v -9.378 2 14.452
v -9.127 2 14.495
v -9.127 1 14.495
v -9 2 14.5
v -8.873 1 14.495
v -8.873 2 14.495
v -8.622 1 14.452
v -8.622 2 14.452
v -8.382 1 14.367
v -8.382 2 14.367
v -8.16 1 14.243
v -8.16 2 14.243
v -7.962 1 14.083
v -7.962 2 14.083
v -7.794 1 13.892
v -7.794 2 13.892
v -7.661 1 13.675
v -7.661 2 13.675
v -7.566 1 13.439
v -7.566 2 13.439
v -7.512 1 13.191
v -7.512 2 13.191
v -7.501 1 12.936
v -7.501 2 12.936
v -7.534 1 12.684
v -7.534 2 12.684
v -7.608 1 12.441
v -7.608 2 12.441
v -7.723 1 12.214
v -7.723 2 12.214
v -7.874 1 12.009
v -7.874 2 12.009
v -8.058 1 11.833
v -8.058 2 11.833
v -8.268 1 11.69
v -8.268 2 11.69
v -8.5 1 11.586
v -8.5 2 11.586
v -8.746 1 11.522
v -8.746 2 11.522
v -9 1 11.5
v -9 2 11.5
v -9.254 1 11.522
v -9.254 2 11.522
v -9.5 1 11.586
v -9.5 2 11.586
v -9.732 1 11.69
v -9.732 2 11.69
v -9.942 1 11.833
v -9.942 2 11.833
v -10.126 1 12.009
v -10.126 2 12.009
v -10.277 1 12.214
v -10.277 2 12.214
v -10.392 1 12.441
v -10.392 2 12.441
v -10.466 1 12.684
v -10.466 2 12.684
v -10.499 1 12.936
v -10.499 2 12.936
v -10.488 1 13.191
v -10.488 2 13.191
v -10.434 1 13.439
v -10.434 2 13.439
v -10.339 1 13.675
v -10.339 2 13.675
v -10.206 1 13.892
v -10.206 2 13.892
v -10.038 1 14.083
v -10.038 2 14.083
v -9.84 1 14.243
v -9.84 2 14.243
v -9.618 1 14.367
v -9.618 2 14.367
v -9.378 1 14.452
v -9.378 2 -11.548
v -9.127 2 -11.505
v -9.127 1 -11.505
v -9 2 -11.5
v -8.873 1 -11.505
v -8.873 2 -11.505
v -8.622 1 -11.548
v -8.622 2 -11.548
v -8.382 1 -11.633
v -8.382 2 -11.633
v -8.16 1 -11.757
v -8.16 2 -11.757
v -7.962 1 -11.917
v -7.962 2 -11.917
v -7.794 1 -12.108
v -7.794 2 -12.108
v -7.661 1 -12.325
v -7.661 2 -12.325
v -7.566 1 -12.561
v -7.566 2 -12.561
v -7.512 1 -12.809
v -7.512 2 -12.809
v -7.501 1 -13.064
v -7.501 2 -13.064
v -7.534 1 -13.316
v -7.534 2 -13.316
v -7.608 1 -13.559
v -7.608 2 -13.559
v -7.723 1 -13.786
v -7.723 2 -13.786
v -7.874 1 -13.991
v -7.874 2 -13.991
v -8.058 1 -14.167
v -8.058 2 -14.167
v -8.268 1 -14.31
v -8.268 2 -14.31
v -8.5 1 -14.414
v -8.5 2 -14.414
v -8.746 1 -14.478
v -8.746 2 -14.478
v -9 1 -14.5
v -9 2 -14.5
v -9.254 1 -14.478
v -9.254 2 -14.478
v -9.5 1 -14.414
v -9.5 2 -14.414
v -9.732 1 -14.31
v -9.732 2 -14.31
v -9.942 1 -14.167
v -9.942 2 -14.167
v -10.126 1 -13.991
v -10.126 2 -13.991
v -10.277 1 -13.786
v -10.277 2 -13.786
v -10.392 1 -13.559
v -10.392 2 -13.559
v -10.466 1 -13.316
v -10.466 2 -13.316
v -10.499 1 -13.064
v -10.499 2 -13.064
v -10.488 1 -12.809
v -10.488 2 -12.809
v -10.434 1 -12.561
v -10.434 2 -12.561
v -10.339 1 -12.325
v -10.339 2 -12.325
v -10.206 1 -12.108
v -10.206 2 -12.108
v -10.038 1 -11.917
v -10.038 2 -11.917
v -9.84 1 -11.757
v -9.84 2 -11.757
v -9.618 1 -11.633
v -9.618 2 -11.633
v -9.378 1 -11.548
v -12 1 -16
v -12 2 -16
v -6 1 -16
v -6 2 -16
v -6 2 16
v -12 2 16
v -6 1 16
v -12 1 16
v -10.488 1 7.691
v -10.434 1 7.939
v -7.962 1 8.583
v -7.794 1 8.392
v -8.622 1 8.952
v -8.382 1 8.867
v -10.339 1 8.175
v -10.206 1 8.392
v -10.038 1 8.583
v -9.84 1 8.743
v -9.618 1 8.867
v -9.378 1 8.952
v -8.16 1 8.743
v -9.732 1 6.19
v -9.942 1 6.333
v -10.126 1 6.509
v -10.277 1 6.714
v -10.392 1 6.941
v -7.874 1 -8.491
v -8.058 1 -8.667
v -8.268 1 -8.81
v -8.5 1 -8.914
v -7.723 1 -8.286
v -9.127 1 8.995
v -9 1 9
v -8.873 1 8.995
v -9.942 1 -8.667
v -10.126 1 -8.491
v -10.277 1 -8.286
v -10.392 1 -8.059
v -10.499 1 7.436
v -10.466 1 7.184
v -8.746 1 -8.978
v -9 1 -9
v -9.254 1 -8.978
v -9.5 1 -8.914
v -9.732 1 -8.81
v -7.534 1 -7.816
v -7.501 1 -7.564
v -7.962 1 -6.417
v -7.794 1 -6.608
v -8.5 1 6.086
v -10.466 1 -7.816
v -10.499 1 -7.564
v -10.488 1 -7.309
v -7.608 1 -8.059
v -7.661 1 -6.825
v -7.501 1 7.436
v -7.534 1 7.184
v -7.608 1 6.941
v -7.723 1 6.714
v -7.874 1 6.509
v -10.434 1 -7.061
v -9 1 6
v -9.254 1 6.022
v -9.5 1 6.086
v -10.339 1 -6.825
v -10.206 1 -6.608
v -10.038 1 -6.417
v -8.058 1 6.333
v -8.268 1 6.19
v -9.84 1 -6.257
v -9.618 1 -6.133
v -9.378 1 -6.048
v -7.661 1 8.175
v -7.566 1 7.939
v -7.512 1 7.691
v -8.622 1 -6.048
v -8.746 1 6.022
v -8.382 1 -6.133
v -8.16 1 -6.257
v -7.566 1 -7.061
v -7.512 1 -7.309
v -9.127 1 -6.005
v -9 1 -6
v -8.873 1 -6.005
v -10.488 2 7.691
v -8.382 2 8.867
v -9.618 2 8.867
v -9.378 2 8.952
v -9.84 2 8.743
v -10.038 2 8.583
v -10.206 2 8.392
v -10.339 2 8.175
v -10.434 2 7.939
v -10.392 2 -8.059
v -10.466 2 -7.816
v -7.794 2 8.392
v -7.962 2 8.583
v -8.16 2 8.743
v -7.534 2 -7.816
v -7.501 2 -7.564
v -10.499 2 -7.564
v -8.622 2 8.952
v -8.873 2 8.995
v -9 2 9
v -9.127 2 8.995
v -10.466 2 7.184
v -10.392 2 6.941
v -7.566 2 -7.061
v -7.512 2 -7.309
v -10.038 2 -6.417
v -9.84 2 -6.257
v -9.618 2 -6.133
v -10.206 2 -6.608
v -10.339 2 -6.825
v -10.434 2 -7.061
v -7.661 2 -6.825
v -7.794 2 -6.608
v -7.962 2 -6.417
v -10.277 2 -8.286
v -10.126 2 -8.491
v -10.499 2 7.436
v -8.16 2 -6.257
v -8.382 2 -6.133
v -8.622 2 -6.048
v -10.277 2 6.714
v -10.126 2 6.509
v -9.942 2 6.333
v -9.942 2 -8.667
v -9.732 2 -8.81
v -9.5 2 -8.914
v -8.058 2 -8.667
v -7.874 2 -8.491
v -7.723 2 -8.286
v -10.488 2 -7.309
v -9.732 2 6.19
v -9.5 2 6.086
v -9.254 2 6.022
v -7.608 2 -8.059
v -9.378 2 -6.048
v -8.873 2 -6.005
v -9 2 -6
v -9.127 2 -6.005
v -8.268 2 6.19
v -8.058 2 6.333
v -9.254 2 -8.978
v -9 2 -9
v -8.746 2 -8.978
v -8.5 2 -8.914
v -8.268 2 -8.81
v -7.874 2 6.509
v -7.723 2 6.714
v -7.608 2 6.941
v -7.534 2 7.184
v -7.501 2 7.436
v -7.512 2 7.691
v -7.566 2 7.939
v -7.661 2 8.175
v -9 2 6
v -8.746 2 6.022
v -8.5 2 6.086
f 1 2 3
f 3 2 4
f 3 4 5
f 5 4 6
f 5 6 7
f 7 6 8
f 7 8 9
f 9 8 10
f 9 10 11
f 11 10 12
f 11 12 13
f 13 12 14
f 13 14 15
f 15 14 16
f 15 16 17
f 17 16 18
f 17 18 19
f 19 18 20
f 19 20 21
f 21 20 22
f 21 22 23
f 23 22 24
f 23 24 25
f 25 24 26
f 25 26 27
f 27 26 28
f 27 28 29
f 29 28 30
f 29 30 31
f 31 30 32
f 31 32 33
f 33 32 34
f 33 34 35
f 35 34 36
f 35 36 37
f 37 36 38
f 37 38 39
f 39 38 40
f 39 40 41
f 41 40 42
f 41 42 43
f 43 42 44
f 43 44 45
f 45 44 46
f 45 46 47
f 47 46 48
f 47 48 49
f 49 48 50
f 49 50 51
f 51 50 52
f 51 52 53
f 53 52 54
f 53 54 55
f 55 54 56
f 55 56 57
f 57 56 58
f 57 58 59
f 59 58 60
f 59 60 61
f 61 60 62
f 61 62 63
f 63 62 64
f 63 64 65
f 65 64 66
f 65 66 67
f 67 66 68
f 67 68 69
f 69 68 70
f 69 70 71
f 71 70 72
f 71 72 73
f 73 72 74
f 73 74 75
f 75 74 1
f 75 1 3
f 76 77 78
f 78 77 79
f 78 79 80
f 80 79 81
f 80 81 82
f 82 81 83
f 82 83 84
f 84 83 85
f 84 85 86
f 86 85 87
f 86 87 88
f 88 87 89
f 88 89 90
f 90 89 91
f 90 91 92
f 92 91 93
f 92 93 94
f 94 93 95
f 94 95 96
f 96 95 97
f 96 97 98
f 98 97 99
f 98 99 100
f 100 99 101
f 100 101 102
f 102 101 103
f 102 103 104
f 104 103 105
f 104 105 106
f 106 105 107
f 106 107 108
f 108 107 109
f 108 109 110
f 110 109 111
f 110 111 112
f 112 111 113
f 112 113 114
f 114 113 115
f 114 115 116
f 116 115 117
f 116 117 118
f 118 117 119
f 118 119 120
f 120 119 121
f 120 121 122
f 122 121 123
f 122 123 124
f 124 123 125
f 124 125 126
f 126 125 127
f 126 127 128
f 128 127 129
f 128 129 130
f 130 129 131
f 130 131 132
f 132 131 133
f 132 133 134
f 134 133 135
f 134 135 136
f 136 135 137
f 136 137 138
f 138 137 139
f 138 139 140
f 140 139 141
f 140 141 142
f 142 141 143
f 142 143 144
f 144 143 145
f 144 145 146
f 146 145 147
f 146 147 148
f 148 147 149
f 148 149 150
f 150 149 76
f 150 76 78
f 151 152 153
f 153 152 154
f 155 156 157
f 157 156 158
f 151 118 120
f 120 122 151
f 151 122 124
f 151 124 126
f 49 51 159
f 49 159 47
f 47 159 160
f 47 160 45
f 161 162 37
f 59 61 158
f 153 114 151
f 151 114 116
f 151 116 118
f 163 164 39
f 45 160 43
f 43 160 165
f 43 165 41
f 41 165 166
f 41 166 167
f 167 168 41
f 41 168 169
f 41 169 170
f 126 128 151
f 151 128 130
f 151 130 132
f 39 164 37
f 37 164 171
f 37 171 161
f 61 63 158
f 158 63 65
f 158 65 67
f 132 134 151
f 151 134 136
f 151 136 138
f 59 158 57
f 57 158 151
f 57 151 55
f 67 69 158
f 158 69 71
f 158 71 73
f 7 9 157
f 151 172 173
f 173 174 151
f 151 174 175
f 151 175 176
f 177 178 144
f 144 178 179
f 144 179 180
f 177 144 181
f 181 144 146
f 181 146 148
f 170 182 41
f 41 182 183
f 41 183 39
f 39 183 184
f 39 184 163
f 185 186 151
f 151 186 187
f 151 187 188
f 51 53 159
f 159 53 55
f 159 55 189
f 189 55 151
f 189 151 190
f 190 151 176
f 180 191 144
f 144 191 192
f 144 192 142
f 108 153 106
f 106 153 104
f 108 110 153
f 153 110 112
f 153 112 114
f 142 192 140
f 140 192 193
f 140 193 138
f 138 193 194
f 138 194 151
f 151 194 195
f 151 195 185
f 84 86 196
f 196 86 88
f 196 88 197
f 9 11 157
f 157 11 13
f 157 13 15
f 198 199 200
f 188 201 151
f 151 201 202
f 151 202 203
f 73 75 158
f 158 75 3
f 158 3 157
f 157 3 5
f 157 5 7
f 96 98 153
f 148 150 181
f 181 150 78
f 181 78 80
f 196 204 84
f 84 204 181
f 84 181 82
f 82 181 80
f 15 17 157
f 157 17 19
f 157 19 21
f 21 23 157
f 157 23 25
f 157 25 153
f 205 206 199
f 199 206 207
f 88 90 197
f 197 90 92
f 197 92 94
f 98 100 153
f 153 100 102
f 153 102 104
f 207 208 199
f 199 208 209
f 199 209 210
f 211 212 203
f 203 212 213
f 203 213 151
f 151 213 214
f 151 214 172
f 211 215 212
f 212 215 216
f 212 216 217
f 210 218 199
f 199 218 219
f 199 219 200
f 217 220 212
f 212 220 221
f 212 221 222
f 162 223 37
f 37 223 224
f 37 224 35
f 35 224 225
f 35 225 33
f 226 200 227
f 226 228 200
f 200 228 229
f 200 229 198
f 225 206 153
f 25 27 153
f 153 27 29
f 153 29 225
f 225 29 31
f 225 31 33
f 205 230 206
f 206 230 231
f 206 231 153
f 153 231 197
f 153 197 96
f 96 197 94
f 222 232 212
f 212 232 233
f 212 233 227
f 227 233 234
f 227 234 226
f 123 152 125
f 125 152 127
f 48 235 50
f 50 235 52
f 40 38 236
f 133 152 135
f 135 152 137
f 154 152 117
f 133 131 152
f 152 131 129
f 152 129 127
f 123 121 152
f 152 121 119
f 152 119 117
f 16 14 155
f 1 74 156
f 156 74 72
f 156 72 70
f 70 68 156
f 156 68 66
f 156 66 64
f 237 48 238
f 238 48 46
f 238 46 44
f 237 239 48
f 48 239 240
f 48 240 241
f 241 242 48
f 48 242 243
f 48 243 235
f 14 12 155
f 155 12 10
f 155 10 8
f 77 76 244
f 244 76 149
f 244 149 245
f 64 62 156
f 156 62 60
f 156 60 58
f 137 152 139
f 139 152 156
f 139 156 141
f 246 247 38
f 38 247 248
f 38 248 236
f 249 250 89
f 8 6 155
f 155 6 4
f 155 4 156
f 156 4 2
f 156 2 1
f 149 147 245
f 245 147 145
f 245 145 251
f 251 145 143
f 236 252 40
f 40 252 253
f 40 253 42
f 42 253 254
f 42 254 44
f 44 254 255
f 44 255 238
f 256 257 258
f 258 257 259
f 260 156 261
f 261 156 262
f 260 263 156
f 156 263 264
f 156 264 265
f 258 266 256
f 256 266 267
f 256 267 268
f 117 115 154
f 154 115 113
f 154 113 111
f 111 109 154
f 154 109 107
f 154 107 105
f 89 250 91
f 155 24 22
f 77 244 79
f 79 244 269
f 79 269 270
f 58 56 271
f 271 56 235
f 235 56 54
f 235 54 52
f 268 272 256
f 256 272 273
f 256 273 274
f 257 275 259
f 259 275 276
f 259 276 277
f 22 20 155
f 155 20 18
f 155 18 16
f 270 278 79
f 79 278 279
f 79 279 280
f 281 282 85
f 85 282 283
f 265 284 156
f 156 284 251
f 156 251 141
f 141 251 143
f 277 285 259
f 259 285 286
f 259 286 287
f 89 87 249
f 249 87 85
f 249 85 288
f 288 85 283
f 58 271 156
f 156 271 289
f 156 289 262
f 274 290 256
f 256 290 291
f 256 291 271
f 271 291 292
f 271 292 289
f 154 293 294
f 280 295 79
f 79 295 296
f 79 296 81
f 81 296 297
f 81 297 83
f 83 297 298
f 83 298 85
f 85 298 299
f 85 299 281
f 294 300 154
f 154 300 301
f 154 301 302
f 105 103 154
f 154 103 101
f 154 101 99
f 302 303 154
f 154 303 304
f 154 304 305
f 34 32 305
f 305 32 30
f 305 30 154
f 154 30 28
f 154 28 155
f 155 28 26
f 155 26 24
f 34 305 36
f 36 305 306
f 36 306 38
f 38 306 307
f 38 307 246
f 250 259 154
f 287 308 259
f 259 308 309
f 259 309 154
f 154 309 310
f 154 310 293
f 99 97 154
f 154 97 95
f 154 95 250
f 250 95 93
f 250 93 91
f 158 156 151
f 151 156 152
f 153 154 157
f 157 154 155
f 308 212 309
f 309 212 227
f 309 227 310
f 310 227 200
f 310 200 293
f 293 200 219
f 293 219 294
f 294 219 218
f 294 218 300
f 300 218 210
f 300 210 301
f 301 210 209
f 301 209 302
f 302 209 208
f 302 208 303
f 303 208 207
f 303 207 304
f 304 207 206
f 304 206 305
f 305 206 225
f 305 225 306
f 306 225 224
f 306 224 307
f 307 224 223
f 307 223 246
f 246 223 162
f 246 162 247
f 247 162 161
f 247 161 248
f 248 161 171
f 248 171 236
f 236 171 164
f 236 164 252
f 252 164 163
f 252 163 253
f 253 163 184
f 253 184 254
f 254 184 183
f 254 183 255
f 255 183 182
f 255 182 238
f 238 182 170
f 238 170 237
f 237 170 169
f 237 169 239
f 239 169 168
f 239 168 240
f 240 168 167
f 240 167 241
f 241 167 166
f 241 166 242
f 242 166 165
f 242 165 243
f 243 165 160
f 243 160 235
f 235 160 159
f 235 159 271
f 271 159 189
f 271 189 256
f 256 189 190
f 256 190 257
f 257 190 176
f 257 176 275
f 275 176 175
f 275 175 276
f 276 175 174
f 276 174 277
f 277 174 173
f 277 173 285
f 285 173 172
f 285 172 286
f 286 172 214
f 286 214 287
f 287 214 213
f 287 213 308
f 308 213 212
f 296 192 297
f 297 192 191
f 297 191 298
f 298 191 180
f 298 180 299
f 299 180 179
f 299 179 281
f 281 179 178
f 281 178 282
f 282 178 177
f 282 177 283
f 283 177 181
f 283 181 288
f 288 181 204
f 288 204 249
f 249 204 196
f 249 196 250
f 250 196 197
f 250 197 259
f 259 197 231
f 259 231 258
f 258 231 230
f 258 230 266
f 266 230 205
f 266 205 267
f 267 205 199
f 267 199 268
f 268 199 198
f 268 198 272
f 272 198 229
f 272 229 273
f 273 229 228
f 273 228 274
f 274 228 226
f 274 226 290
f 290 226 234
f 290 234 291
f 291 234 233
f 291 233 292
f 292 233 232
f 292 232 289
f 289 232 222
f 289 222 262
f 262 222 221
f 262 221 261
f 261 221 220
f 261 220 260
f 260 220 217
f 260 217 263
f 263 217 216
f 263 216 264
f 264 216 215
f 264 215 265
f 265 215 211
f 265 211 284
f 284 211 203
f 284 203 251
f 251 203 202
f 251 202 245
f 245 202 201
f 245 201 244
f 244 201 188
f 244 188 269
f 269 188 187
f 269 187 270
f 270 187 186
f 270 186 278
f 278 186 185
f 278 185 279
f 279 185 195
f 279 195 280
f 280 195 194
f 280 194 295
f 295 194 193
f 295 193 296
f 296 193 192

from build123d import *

# Parameters (mm, degrees)
SKETCH_1_R          = 35
SKETCH_1_R_2        = 1.5
EXTRUDE_1_DEPTH     = 1
SKETCH_2_W          = 6
SKETCH_2_H          = 32
SKETCH_2_R          = 1.5
EXTRUDE_2_DEPTH     = 1
SKETCH_3_R          = 35
CUT_EXTRUDE_1_DEPTH = 1


with BuildPart() as part:
    # Эскиз1 → Бобышка-Вытянуть1 (new body)
    with BuildSketch(Plane(origin=(0, 0, 0), x_dir=(1, 0, 0), z_dir=(0, 1, 0))):
        with Locations(Location((0, 0, 0), (0, 0, 270))):
            Circle(SKETCH_1_R)
        with BuildLine():
            Line((-20.493901532, -16), (20.493901532, -16))
            ThreePointArc((20.493901532, -16), (0, -26), (-20.493901532, -16))
        make_face(mode=Mode.SUBTRACT)
        with BuildLine():
            Line((-18, -10), (-24, -10))
            ThreePointArc((-24, -10), (-26, 0), (-24, 10))
            Line((-24, 10), (-18, 10))
            Line((-18, 10), (24, 10))
            ThreePointArc((24, 10), (26, 0), (24, -10))
            Line((24, -10), (-18, -10))
        make_face(mode=Mode.SUBTRACT)
        with Locations(Location((-18, -13, 0), (0, 0, 270))):
            Circle(SKETCH_1_R_2, mode=Mode.SUBTRACT)
        with Locations(Location((-9, -13, 0), (0, 0, 270))):
            Circle(SKETCH_1_R_2, mode=Mode.SUBTRACT)
        with Locations(Location((0, -13, 0), (0, 0, 270))):
            Circle(SKETCH_1_R_2, mode=Mode.SUBTRACT)
        with Locations(Location((9, -13, 0), (0, 0, 270))):
            Circle(SKETCH_1_R_2, mode=Mode.SUBTRACT)
        with Locations(Location((18, -13, 0), (0, 0, 270))):
            Circle(SKETCH_1_R_2, mode=Mode.SUBTRACT)
        with Locations(Location((-21.566756826, -21.566756826, 0), (0, 0, 270))):
            Circle(SKETCH_1_R_2, mode=Mode.SUBTRACT)
        with Locations(Location((-30.5, 0, 0), (0, 0, 270))):
            Circle(SKETCH_1_R_2, mode=Mode.SUBTRACT)
        with Locations(Location((0, -30.5, 0), (0, 0, 270))):
            Circle(SKETCH_1_R_2, mode=Mode.SUBTRACT)
        with Locations(Location((21.566756826, -21.566756826, 0), (0, 0, 270))):
            Circle(SKETCH_1_R_2, mode=Mode.SUBTRACT)
        with Locations(Location((-21.566756826, 21.566756826, 0), (0, 0, 270))):
            Circle(SKETCH_1_R_2, mode=Mode.SUBTRACT)
        with BuildLine():
            ThreePointArc((-20.493901532, 16), (0, 26), (20.493901532, 16))
            Line((20.493901532, 16), (-20.493901532, 16))
        make_face(mode=Mode.SUBTRACT)
        with Locations(Location((0, 30.5, 0), (0, 0, 270))):
            Circle(SKETCH_1_R_2, mode=Mode.SUBTRACT)
        with Locations(Location((21.566756826, 21.566756826, 0), (0, 0, 270))):
            Circle(SKETCH_1_R_2, mode=Mode.SUBTRACT)
        with Locations(Location((30.5, 0, 0), (0, 0, 270))):
            Circle(SKETCH_1_R_2, mode=Mode.SUBTRACT)
        with Locations(Location((18, 13, 0), (0, 0, 270))):
            Circle(SKETCH_1_R_2, mode=Mode.SUBTRACT)
        with Locations(Location((-18, 13, 0), (0, 0, 270))):
            Circle(SKETCH_1_R_2, mode=Mode.SUBTRACT)
        with Locations(Location((-9, 13, 0), (0, 0, 270))):
            Circle(SKETCH_1_R_2, mode=Mode.SUBTRACT)
        with Locations(Location((0, 13, 0), (0, 0, 270))):
            Circle(SKETCH_1_R_2, mode=Mode.SUBTRACT)
        with Locations(Location((9, 13, 0), (0, 0, 270))):
            Circle(SKETCH_1_R_2, mode=Mode.SUBTRACT)
    extrude(amount=EXTRUDE_1_DEPTH)

    # Эскиз2 → Бобышка-Вытянуть2 (add)
    with BuildSketch(Plane(origin=(0, 1, 0), x_dir=(1, 0, 0), z_dir=(0, 1, 0))):
        with Locations((-9, 0)):
            Rectangle(SKETCH_2_W, SKETCH_2_H)
        with Locations(Location((-9, -7.5, 0), (0, 0, 270))):
            Circle(SKETCH_2_R, mode=Mode.SUBTRACT)
        with Locations(Location((-9, 7.5, 0), (0, 0, 270))):
            Circle(SKETCH_2_R, mode=Mode.SUBTRACT)
        with Locations(Location((-9, -13, 0), (0, 0, 270))):
            Circle(SKETCH_2_R, mode=Mode.SUBTRACT)
        with Locations(Location((-9, 13, 0), (0, 0, 270))):
            Circle(SKETCH_2_R, mode=Mode.SUBTRACT)
    extrude(amount=EXTRUDE_2_DEPTH)

    # Эскиз3 → Вырез-Вытянуть1 (cut)
    with BuildSketch(Plane.XZ):
        Circle(SKETCH_3_R)
    extrude(amount=-CUT_EXTRUDE_1_DEPTH, mode=Mode.SUBTRACT)


solid = part.part
